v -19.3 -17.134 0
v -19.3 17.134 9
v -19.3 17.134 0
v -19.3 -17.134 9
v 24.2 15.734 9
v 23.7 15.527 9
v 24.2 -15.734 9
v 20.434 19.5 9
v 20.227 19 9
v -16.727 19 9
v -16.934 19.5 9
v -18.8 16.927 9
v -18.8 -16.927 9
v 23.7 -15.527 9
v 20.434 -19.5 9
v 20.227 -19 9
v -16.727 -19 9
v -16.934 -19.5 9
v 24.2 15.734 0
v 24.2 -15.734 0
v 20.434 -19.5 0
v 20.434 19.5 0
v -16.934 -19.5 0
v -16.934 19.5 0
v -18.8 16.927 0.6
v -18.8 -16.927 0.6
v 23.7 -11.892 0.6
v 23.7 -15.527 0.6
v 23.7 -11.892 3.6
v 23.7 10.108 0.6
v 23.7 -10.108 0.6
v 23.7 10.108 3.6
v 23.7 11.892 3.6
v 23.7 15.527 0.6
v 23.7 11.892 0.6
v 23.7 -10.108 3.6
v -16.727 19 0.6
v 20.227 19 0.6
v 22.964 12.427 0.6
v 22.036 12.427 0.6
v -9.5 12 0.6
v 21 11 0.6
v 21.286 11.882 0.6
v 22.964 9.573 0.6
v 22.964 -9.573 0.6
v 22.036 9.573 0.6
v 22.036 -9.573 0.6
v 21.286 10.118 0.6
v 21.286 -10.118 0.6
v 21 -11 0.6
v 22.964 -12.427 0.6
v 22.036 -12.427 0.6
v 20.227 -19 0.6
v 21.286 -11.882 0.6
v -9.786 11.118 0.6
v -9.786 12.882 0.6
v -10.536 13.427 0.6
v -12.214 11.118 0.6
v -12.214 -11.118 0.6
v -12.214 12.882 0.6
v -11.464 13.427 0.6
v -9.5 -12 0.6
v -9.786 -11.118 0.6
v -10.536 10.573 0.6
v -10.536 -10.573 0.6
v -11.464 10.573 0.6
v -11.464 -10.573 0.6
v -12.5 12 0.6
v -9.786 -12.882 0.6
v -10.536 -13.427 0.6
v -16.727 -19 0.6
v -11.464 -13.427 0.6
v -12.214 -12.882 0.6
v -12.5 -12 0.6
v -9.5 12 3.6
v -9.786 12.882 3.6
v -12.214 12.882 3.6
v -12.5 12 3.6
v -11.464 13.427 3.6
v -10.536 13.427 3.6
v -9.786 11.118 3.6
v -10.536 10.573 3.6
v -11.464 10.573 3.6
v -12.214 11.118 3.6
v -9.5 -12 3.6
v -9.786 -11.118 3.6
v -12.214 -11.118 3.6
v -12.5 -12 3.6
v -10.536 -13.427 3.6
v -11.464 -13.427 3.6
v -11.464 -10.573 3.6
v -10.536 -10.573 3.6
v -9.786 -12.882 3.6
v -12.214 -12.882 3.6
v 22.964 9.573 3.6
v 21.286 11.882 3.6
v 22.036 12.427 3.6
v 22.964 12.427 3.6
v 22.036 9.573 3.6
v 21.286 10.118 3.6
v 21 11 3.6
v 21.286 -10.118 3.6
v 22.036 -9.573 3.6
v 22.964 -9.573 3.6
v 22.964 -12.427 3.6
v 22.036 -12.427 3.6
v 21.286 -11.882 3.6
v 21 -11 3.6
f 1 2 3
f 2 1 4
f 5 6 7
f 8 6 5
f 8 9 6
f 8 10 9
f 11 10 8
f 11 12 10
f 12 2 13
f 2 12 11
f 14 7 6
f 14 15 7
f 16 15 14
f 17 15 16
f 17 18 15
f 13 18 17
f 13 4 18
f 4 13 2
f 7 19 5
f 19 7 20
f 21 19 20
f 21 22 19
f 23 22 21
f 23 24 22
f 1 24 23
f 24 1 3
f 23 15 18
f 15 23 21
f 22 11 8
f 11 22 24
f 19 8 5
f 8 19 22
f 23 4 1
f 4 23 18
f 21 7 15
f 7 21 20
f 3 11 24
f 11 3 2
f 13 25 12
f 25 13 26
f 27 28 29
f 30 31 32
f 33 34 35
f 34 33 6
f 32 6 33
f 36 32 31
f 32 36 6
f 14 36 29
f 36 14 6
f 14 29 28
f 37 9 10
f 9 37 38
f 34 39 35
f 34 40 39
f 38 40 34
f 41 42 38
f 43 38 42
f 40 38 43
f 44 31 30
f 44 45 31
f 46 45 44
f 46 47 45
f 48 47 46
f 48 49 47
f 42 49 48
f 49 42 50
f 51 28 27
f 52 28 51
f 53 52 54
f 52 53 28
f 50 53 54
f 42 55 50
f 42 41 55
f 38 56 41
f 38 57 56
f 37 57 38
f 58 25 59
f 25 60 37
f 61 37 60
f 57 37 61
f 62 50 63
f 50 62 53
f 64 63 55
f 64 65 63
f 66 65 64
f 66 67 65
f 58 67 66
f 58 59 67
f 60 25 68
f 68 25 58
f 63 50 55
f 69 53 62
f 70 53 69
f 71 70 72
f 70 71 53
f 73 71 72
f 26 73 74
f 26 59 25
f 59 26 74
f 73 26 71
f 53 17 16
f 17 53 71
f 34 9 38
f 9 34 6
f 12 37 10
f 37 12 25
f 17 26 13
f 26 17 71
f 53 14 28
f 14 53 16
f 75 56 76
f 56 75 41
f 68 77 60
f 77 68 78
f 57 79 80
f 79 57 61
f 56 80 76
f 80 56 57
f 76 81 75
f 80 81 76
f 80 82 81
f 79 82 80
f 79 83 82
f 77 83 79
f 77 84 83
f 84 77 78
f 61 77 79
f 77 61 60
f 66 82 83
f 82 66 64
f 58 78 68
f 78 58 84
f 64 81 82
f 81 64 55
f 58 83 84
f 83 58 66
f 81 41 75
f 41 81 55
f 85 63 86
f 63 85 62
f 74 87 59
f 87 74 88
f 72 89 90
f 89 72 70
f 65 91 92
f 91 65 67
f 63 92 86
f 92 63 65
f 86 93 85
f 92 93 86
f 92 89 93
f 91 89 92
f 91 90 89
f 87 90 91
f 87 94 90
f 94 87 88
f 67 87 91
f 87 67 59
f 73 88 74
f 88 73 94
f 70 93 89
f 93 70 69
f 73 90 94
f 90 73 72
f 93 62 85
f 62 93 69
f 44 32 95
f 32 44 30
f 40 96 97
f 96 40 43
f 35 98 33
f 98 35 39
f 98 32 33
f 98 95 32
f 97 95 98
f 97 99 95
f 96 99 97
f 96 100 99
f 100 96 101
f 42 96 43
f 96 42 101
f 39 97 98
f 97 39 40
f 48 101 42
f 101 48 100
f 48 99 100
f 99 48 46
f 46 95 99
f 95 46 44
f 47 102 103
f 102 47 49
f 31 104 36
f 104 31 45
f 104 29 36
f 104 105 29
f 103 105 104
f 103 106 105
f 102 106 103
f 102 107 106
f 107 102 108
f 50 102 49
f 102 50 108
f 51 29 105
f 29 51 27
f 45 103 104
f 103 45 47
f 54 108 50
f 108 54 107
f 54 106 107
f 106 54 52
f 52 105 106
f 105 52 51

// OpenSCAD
//projection(cut=true) translate([0,0,-1])
union() {
    difference() {
        translate([0.7+3.5/2,0,4.5]) {
            intersection() {
                cube([43.5,39,9], center=true);
                translate([-0.7,0,0]) rotate(45) {
                    cube(54, center=true);
                }
            }
        }
        translate([0.7+3.5/2,0,5.1]) {
            intersection() {
                cube([42.5,38,9], center=true);
                translate([-0.7,0,0]) rotate(45) {
                    cube(53, center=true);
                }
            }
        }
    }

    translate([-11,  +12,1.8]) cylinder(3.6,1.5,1.5,center=true,$fn=10);
    translate([-11,  -12,1.8]) cylinder(3.6,1.5,1.5,center=true,$fn=10);
    translate([+22.5,+11,1.8]) cylinder(3.6,1.5,1.5,center=true,$fn=10);
    translate([+22.5,-11,1.8]) cylinder(3.6,1.5,1.5,center=true,$fn=10);
}
